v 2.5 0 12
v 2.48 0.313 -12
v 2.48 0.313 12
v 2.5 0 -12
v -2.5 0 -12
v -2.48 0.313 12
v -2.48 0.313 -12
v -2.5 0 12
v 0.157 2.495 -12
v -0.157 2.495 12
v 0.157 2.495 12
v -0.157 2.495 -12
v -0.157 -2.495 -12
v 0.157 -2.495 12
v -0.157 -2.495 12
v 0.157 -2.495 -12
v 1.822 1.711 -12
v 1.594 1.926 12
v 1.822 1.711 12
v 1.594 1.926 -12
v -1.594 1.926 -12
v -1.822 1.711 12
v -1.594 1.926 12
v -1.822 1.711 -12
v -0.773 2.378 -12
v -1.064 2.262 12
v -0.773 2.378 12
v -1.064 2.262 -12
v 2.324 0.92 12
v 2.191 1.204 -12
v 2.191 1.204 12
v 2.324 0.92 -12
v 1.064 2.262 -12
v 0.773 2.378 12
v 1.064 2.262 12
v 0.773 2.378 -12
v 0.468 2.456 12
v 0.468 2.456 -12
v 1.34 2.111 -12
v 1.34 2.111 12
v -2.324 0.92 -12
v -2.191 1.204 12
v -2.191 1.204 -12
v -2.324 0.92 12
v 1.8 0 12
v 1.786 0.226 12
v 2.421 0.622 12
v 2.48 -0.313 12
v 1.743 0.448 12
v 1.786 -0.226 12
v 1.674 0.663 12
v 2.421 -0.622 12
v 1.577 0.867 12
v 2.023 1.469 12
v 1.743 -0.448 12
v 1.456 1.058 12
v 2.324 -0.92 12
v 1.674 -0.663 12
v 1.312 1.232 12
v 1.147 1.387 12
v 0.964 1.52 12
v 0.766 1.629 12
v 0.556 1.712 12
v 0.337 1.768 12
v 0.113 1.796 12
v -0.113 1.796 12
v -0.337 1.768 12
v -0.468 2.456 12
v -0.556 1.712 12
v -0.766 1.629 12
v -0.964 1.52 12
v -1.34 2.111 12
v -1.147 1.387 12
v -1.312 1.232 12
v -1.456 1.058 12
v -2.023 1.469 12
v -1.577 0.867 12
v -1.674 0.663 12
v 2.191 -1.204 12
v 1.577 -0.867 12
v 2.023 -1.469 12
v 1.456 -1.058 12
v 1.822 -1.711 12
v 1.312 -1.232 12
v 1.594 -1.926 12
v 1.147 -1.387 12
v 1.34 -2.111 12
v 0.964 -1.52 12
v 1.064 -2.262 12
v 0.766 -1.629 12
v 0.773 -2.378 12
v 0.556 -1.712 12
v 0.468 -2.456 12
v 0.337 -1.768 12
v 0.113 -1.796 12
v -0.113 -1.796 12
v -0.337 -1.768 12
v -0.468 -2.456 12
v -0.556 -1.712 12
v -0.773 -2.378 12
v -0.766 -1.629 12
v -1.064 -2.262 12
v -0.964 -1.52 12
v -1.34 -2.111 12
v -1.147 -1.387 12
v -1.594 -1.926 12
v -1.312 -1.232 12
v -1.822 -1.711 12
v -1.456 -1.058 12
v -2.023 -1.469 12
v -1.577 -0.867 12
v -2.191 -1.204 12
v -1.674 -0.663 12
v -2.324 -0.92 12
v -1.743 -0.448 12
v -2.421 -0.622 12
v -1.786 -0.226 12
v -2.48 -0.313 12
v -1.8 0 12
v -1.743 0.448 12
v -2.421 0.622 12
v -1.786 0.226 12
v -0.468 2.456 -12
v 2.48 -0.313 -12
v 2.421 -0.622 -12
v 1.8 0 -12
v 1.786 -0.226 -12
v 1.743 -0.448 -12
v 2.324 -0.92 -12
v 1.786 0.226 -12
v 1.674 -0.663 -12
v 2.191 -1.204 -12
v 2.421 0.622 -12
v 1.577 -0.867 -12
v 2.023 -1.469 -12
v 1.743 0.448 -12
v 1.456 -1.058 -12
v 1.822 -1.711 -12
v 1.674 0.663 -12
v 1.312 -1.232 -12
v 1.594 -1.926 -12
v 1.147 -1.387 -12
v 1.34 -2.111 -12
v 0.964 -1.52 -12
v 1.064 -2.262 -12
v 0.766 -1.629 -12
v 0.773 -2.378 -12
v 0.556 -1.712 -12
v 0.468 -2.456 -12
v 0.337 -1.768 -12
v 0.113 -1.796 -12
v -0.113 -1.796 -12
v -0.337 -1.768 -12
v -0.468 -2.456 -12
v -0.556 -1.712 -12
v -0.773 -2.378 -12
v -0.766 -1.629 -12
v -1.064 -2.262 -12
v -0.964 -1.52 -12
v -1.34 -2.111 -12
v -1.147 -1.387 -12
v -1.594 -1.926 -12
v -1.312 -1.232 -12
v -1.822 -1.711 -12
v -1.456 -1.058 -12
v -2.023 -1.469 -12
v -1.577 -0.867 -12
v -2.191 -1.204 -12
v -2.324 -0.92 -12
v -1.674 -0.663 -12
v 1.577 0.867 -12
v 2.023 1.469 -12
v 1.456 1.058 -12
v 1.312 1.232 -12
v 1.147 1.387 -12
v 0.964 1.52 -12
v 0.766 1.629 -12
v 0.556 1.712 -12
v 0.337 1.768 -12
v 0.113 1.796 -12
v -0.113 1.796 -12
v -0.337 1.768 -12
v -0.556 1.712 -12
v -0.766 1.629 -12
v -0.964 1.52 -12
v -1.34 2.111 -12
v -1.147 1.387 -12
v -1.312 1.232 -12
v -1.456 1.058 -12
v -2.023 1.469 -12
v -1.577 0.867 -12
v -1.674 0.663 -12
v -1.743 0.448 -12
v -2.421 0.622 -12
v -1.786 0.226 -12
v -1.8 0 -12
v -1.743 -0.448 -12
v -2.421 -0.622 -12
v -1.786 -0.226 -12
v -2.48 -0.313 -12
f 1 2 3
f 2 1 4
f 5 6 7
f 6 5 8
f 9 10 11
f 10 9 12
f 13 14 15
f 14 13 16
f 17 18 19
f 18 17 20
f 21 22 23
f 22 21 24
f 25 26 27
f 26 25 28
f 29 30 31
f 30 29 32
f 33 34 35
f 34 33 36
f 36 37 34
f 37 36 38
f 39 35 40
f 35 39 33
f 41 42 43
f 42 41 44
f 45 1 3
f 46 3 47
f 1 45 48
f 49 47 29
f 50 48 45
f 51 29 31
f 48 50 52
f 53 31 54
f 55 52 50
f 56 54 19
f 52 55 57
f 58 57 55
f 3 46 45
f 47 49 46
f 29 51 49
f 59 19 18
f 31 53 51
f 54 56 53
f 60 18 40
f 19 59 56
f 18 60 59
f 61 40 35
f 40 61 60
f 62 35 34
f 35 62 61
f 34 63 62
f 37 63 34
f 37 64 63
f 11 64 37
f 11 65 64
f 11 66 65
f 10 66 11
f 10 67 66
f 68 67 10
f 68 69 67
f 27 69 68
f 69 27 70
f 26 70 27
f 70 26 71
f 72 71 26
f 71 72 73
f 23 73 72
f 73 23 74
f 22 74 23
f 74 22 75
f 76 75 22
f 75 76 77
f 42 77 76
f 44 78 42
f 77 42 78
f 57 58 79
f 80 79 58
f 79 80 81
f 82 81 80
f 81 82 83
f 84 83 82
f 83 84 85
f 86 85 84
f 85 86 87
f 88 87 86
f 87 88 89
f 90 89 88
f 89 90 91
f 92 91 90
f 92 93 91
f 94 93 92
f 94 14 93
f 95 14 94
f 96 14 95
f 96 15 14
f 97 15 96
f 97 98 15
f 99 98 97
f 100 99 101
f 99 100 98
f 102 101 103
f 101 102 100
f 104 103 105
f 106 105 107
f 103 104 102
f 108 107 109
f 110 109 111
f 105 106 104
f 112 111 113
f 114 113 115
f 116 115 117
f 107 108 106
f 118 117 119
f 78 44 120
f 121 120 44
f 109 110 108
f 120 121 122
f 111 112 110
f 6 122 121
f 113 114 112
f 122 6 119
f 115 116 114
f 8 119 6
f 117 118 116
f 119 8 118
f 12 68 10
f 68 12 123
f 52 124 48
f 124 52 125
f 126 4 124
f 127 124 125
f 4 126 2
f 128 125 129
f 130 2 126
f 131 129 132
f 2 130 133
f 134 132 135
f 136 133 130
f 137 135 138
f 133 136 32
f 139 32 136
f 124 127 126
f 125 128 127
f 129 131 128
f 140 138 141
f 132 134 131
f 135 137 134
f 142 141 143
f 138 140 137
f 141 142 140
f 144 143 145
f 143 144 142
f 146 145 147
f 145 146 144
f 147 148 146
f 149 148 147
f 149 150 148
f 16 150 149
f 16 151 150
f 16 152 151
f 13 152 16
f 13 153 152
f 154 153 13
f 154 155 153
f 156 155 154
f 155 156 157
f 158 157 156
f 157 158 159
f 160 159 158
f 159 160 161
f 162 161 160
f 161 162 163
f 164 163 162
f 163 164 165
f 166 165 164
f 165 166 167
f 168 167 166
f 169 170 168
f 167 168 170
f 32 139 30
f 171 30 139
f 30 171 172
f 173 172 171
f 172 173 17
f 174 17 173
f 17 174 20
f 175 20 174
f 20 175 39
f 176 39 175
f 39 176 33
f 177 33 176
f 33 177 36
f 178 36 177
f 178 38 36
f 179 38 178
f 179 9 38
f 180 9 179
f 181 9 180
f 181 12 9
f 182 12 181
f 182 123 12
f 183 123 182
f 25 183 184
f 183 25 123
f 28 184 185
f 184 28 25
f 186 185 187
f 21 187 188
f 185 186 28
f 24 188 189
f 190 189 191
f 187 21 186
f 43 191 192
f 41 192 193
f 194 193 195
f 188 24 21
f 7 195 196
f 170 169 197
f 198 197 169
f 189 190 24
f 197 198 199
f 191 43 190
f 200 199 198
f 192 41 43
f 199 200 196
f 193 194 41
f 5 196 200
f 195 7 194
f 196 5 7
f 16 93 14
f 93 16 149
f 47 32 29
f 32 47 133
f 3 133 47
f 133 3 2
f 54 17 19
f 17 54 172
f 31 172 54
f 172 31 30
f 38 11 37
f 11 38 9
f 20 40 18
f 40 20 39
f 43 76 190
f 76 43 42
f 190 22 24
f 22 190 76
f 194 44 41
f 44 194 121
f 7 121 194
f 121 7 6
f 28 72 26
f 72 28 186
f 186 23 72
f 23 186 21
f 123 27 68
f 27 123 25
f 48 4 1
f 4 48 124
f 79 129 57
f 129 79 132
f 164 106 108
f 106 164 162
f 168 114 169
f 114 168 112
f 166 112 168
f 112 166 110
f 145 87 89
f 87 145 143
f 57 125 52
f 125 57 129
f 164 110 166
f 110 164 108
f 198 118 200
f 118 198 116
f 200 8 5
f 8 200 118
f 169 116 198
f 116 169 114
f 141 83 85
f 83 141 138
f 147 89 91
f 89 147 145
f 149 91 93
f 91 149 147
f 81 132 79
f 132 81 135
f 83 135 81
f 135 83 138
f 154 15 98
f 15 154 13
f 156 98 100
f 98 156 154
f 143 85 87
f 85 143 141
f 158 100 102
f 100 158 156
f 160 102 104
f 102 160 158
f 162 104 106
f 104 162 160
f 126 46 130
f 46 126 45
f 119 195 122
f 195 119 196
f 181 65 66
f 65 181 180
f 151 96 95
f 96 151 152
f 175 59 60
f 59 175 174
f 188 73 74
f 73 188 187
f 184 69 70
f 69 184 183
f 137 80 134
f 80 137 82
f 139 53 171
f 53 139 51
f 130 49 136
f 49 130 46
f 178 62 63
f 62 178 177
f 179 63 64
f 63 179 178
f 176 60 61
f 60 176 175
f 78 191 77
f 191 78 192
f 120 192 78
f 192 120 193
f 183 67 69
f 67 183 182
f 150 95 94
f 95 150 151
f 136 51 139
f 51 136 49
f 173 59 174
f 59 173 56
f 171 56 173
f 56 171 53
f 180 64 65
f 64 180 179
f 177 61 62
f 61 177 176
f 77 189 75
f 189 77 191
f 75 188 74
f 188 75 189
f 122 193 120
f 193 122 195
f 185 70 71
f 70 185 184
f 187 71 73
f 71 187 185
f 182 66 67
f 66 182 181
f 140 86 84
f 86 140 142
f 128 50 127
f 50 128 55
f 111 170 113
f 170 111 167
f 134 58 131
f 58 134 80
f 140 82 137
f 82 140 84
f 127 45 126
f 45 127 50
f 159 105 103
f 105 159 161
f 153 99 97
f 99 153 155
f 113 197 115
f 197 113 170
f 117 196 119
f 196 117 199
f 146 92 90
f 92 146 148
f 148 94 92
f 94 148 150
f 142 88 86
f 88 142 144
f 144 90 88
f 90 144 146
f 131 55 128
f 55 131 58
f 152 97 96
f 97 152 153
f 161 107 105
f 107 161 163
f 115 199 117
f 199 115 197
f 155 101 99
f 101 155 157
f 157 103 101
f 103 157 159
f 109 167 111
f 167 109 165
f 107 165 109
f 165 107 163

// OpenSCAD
$fn = 50;


difference() {
	union() {
		translate(v = [0, 0, -12.0000000000]) {
			cylinder(h = 24, r = 2.5000000000);
		}
	}
	union() {
		translate(v = [0, 0, -100.0000000000]) {
			cylinder(h = 200, r = 1.8000000000);
		}
	}
}
